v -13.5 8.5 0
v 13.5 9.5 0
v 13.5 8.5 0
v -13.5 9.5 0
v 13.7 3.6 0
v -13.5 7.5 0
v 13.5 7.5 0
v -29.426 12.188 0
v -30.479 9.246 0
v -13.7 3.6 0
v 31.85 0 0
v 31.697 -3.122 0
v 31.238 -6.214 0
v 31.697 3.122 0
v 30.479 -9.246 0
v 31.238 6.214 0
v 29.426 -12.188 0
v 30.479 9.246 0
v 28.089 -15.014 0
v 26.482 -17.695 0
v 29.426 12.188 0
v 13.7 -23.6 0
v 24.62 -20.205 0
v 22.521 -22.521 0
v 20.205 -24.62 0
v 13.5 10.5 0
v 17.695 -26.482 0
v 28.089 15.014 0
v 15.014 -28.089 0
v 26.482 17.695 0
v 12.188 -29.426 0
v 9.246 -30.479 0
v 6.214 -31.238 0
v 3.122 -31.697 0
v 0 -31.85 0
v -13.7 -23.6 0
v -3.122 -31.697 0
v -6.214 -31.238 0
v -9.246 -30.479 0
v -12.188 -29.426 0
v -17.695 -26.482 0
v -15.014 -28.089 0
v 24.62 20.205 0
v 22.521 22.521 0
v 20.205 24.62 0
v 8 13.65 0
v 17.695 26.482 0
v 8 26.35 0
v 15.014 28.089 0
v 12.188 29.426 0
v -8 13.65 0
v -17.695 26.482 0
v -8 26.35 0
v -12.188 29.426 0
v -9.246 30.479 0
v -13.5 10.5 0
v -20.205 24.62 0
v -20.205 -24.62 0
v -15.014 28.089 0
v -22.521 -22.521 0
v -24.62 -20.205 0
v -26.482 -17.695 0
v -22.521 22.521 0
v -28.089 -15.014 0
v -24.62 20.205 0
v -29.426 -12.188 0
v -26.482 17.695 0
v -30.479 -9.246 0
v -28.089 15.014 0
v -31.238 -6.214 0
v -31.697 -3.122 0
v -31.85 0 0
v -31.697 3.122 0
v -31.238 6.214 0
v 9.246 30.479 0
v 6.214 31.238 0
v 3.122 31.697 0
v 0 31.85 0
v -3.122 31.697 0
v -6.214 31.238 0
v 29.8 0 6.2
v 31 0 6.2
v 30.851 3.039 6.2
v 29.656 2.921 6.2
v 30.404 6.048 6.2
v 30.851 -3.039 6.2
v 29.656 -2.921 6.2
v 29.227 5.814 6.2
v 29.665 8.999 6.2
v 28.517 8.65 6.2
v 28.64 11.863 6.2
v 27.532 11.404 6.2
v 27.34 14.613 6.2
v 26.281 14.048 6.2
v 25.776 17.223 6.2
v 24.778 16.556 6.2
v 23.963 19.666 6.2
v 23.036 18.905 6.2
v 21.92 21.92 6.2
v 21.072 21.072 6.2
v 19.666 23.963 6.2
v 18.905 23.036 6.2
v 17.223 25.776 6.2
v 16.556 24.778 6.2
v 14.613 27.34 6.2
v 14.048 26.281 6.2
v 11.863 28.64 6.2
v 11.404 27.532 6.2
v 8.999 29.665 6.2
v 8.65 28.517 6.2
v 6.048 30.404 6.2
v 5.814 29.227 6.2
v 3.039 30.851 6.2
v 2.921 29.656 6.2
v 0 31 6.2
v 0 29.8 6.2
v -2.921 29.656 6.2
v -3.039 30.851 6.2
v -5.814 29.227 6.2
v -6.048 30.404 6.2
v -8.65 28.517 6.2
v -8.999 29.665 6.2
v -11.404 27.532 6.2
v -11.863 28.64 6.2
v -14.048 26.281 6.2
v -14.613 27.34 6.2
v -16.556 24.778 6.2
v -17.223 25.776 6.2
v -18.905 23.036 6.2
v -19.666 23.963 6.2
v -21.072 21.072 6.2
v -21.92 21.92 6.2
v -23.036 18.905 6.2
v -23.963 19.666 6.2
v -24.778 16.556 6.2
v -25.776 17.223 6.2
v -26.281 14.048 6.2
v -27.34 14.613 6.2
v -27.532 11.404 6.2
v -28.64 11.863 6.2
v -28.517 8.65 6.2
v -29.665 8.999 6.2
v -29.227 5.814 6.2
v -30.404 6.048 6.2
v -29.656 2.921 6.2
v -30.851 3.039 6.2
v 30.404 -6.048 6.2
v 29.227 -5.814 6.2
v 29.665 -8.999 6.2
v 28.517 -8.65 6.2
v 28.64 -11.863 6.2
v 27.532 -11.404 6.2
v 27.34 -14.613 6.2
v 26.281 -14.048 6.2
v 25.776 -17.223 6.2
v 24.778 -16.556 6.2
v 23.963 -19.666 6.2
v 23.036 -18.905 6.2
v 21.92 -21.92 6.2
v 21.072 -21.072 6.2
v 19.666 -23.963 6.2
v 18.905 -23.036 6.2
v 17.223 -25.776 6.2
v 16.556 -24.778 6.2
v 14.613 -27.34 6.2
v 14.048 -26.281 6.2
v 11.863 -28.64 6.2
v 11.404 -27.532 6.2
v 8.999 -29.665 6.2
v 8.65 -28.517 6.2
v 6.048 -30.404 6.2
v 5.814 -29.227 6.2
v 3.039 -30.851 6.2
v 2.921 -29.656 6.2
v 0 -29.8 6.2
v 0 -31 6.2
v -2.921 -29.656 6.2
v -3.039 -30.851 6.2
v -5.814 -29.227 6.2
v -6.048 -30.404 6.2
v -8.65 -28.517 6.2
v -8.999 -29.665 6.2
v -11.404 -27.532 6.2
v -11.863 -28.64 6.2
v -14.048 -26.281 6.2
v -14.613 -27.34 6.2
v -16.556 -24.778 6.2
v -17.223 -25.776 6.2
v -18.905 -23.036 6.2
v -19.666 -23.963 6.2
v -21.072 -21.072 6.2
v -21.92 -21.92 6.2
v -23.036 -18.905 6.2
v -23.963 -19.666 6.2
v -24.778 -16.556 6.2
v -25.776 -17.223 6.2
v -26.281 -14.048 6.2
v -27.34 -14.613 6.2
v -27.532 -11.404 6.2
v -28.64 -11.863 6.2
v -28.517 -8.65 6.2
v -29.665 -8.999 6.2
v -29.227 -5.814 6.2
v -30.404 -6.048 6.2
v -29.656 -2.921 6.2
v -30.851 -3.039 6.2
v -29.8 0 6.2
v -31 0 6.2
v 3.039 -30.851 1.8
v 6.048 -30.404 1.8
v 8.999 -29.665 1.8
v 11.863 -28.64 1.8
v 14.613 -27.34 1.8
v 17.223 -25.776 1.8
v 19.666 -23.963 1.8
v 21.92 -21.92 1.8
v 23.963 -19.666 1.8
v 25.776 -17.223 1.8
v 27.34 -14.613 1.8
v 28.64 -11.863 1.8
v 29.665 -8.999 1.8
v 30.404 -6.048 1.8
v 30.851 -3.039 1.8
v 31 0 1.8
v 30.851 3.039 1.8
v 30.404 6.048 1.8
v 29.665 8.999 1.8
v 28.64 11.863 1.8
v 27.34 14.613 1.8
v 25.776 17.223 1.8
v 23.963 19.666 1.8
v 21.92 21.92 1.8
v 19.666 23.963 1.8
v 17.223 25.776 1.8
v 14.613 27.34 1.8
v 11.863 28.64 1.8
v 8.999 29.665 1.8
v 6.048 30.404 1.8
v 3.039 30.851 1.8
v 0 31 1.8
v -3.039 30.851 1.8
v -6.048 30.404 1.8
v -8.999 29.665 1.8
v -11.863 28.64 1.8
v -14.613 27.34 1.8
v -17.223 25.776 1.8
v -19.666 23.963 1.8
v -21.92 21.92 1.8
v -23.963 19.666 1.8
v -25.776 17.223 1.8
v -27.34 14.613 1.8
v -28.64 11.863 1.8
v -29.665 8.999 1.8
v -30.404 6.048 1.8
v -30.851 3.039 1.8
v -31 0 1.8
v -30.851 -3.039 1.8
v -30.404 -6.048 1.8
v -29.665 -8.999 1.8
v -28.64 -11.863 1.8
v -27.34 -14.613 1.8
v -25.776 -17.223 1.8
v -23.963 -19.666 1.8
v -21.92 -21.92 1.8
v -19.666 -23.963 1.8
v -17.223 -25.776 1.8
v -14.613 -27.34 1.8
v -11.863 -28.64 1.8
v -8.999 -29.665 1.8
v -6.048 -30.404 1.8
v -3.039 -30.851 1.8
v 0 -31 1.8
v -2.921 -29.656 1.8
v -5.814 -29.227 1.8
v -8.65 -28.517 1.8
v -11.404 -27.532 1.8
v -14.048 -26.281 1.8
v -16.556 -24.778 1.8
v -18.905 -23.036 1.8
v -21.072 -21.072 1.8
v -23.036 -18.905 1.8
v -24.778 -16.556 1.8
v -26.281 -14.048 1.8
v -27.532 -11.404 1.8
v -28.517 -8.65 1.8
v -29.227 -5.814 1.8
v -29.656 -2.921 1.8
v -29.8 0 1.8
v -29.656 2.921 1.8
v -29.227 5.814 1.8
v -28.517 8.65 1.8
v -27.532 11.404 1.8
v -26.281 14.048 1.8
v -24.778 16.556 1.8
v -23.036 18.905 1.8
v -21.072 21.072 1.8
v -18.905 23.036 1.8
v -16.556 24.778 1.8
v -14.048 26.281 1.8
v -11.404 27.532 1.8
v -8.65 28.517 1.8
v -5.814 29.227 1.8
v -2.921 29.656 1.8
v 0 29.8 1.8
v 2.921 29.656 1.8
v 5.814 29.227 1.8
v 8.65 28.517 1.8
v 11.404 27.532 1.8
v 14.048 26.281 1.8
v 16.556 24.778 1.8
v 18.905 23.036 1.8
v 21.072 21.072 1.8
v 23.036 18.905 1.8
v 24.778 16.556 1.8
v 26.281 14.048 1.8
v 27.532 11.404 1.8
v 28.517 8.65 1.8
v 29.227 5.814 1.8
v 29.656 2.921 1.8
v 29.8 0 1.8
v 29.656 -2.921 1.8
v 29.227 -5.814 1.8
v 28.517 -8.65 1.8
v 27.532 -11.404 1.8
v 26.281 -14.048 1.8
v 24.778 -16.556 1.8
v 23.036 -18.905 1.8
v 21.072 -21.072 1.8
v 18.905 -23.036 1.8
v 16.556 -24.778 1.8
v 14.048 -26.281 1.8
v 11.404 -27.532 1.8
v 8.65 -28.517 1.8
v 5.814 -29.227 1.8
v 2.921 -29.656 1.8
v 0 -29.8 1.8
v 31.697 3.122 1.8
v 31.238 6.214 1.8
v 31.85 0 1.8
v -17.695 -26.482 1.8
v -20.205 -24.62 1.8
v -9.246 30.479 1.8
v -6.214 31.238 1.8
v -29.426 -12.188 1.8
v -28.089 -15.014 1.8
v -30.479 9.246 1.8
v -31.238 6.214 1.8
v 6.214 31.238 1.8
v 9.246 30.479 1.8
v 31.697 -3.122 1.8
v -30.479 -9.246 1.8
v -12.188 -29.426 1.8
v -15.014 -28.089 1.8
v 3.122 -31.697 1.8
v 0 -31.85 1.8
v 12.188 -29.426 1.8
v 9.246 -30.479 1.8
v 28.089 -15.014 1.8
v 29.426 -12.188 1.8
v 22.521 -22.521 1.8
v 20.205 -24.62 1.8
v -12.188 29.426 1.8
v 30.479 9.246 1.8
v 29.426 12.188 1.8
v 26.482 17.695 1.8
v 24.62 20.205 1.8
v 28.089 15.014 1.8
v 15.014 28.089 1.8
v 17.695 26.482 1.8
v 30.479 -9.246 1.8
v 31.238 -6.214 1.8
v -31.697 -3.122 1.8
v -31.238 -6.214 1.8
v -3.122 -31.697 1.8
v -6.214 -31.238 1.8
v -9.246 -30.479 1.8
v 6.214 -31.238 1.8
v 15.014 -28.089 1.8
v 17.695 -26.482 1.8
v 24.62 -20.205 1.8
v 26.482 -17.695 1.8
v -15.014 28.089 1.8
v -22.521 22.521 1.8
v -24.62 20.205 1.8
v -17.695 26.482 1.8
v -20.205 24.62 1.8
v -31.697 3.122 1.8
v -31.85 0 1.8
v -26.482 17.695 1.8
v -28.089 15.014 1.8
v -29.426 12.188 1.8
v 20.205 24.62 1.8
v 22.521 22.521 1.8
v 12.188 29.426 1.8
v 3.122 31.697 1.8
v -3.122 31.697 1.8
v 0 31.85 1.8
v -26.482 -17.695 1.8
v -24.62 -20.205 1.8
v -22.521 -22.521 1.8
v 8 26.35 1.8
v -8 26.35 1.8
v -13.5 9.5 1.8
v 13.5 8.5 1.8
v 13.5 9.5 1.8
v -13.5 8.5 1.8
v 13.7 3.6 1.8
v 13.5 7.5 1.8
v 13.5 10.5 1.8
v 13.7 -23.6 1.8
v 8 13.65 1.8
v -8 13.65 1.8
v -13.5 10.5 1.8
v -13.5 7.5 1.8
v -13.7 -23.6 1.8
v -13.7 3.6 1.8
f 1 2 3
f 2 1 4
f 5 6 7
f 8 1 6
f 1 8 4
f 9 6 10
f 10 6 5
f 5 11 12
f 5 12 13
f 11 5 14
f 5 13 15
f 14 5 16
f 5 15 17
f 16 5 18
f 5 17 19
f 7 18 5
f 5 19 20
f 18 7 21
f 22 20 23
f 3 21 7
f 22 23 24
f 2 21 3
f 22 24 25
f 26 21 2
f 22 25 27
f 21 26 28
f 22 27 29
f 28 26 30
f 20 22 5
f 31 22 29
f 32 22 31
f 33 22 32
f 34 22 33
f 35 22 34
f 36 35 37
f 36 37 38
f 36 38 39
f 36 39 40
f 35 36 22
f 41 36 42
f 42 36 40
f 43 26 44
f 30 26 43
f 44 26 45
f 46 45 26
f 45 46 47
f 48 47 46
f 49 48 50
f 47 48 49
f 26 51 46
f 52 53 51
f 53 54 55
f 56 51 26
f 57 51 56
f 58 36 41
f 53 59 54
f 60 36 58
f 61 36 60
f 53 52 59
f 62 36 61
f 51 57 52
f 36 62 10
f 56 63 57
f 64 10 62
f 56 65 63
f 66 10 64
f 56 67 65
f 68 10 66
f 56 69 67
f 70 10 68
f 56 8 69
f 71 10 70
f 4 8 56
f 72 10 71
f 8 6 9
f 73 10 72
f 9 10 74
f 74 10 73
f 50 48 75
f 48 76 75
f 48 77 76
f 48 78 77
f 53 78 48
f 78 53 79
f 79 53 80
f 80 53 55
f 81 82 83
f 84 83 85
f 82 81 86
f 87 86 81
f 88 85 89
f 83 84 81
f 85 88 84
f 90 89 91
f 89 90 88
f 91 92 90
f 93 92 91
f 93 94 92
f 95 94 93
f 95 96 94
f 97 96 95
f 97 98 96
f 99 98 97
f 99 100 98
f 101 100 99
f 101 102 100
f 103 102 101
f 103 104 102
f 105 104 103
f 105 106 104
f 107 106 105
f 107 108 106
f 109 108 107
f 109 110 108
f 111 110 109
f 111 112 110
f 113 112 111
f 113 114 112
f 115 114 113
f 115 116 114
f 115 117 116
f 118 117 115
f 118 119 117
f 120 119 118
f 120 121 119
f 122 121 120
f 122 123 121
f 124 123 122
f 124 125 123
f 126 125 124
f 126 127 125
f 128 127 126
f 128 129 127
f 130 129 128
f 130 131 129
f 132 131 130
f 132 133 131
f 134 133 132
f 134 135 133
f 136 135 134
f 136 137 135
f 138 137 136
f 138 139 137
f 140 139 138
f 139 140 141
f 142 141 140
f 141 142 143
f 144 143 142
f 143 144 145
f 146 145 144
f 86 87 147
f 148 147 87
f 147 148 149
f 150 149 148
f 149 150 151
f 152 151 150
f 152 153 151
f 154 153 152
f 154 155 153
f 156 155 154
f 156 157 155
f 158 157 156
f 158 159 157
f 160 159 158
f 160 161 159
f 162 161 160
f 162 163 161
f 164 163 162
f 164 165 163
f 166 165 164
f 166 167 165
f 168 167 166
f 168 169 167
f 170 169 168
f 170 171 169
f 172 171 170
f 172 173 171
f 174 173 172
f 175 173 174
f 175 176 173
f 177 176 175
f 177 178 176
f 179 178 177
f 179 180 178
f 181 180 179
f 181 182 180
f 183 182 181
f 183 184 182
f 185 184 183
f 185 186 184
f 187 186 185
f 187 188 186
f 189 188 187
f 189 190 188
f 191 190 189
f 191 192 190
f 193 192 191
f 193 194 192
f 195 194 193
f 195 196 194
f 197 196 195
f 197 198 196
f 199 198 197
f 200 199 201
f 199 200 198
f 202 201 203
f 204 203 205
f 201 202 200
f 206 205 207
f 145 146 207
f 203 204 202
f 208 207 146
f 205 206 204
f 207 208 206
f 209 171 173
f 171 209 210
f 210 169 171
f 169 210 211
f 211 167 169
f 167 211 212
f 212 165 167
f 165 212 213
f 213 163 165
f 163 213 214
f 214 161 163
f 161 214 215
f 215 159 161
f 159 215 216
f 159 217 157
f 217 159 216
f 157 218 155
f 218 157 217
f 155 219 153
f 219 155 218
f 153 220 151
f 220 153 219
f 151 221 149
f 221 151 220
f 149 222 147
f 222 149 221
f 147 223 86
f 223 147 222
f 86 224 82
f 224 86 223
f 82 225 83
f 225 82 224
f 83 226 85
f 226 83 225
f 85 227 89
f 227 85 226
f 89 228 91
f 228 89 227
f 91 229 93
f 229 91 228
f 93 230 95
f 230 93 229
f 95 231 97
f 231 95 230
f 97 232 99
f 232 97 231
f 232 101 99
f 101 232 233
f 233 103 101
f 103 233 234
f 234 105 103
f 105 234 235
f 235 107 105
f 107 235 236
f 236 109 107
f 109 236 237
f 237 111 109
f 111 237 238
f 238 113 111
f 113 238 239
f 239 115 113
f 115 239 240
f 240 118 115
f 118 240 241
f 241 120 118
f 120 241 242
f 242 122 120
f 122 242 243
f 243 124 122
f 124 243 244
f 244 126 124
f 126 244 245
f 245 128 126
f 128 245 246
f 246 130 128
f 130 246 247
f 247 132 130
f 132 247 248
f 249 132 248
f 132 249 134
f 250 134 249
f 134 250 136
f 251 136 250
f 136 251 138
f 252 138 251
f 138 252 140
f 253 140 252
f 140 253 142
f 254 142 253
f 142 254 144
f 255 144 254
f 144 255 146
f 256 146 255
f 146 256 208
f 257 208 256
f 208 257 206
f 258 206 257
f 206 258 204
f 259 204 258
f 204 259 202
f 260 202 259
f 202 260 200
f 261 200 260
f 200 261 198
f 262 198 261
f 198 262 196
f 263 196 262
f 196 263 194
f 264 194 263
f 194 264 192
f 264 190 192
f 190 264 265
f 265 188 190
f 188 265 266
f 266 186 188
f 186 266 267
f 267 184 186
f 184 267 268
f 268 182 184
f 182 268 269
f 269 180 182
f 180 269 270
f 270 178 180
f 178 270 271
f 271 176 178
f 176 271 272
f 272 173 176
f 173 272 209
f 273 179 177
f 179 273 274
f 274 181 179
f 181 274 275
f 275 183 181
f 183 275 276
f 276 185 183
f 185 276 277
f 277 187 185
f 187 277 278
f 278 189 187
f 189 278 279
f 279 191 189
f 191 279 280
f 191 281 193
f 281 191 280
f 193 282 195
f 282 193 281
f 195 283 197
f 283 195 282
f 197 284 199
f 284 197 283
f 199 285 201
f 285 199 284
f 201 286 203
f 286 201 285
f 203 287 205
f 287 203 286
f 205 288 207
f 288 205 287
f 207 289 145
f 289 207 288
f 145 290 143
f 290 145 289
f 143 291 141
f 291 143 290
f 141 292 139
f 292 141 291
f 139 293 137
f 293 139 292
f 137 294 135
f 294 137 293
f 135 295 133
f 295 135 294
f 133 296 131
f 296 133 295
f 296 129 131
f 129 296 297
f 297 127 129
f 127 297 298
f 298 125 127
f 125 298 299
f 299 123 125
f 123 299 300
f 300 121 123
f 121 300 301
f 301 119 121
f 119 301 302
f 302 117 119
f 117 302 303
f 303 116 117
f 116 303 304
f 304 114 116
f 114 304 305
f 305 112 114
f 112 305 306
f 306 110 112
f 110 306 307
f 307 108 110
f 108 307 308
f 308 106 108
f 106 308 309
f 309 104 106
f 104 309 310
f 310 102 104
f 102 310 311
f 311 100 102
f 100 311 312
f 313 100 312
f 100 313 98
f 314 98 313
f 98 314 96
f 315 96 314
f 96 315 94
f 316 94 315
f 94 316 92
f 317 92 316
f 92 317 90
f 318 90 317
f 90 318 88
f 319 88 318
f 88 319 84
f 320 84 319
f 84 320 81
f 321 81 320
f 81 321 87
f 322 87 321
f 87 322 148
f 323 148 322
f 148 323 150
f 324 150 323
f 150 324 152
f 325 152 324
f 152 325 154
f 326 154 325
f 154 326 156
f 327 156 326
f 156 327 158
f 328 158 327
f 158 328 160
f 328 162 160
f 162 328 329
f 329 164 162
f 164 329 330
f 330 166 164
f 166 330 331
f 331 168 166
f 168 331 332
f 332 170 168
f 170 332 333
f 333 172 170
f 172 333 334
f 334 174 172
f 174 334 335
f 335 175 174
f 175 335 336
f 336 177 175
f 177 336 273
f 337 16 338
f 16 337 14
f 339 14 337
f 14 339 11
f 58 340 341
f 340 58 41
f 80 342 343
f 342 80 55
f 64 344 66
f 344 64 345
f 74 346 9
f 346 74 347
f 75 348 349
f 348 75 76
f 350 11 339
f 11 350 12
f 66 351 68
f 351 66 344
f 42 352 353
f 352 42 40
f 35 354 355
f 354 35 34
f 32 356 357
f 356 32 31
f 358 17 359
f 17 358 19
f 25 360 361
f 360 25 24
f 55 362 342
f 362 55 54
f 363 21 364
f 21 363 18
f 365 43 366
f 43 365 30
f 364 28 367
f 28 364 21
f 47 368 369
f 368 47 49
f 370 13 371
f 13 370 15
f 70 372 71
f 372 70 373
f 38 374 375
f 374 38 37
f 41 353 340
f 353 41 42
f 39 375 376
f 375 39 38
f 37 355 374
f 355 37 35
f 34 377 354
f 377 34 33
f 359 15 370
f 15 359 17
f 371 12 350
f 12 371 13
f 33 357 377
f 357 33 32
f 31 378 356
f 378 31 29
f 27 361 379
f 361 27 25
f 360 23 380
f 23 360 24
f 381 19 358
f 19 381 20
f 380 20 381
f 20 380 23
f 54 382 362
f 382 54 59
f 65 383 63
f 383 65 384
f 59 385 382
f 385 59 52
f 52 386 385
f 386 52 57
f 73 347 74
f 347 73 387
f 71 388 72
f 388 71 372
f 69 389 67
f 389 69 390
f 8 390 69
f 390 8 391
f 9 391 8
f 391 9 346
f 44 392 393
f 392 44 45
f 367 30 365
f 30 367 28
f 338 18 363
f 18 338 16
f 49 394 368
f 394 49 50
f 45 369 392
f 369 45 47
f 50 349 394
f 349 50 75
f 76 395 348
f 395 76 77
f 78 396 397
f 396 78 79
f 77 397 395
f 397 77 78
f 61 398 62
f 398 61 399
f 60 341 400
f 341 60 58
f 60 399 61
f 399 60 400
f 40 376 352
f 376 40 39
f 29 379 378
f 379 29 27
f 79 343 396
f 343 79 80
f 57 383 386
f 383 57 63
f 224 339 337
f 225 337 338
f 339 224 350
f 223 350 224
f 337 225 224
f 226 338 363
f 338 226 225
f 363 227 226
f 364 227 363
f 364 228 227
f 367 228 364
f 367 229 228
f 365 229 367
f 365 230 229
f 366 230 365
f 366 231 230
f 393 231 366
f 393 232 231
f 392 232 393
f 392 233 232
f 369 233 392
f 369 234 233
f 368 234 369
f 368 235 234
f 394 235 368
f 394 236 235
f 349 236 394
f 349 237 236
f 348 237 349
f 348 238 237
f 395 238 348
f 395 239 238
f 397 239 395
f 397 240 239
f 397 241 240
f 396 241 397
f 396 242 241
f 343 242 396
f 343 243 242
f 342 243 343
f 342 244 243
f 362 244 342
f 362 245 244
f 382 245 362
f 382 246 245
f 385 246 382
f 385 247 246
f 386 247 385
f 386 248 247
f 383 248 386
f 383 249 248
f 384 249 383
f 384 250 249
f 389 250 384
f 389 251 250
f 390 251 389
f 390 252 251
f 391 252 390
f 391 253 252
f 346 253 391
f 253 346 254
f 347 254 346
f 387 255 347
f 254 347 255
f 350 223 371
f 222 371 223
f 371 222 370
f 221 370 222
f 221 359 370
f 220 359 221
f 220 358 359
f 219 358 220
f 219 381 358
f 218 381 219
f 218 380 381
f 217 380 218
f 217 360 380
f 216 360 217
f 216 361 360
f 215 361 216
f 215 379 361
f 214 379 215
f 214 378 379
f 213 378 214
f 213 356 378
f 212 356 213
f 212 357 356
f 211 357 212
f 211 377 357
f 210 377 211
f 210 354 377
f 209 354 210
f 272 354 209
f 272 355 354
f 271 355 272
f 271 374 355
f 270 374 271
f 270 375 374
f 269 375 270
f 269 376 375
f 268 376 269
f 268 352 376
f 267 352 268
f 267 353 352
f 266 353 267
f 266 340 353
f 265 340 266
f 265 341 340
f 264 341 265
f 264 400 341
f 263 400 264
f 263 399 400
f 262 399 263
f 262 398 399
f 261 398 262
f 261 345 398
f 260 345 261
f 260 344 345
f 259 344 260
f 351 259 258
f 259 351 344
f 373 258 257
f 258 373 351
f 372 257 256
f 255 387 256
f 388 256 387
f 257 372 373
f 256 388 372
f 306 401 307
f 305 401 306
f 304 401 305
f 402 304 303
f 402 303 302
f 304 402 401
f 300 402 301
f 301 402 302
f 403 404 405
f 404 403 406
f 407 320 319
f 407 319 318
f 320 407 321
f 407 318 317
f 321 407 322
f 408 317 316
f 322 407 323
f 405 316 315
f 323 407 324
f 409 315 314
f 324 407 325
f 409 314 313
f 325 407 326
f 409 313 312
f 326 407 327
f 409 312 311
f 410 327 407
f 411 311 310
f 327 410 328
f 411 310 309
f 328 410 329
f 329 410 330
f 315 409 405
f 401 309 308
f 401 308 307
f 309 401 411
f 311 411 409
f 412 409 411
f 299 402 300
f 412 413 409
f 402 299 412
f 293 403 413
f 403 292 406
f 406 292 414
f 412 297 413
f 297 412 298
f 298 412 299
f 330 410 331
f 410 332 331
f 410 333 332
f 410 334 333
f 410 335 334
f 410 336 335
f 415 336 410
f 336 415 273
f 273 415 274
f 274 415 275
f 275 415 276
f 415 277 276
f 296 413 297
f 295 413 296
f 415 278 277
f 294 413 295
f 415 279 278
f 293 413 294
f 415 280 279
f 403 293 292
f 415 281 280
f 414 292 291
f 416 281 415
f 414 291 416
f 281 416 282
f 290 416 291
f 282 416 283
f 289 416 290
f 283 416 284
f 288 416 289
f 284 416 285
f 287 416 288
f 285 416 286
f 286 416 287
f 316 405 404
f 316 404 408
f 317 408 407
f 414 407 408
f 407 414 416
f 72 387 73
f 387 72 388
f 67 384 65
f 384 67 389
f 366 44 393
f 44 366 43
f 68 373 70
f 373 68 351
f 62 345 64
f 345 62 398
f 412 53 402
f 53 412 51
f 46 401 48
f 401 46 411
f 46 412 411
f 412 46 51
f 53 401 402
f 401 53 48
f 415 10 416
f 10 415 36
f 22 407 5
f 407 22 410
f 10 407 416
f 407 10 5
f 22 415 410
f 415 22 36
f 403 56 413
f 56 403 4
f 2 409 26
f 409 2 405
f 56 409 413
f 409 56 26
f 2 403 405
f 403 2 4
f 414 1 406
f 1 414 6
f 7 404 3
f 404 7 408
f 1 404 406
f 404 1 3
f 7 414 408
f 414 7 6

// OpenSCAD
$fn = $preview ? 16 : 64;


difference() {
    union() {
        linear_extrude(6.2)
            difference() {
                circle(d = 62);
                circle(d = 59.6);
            }   

        linear_extrude(1.8)
            circle(d = 63.7);
    }        
    translate([0, 20, 0])
        cube([16, 12.7, 4], center = true);
    
    translate([0, -10, 0])
        cube([27.4, 27.2, 4], center = true);    
    
    translate([0, 10, 0])
        cube([27, 1, 4], center = true);    
    
    translate([0, 8, 0])
        cube([27, 1, 4], center = true);        
}
